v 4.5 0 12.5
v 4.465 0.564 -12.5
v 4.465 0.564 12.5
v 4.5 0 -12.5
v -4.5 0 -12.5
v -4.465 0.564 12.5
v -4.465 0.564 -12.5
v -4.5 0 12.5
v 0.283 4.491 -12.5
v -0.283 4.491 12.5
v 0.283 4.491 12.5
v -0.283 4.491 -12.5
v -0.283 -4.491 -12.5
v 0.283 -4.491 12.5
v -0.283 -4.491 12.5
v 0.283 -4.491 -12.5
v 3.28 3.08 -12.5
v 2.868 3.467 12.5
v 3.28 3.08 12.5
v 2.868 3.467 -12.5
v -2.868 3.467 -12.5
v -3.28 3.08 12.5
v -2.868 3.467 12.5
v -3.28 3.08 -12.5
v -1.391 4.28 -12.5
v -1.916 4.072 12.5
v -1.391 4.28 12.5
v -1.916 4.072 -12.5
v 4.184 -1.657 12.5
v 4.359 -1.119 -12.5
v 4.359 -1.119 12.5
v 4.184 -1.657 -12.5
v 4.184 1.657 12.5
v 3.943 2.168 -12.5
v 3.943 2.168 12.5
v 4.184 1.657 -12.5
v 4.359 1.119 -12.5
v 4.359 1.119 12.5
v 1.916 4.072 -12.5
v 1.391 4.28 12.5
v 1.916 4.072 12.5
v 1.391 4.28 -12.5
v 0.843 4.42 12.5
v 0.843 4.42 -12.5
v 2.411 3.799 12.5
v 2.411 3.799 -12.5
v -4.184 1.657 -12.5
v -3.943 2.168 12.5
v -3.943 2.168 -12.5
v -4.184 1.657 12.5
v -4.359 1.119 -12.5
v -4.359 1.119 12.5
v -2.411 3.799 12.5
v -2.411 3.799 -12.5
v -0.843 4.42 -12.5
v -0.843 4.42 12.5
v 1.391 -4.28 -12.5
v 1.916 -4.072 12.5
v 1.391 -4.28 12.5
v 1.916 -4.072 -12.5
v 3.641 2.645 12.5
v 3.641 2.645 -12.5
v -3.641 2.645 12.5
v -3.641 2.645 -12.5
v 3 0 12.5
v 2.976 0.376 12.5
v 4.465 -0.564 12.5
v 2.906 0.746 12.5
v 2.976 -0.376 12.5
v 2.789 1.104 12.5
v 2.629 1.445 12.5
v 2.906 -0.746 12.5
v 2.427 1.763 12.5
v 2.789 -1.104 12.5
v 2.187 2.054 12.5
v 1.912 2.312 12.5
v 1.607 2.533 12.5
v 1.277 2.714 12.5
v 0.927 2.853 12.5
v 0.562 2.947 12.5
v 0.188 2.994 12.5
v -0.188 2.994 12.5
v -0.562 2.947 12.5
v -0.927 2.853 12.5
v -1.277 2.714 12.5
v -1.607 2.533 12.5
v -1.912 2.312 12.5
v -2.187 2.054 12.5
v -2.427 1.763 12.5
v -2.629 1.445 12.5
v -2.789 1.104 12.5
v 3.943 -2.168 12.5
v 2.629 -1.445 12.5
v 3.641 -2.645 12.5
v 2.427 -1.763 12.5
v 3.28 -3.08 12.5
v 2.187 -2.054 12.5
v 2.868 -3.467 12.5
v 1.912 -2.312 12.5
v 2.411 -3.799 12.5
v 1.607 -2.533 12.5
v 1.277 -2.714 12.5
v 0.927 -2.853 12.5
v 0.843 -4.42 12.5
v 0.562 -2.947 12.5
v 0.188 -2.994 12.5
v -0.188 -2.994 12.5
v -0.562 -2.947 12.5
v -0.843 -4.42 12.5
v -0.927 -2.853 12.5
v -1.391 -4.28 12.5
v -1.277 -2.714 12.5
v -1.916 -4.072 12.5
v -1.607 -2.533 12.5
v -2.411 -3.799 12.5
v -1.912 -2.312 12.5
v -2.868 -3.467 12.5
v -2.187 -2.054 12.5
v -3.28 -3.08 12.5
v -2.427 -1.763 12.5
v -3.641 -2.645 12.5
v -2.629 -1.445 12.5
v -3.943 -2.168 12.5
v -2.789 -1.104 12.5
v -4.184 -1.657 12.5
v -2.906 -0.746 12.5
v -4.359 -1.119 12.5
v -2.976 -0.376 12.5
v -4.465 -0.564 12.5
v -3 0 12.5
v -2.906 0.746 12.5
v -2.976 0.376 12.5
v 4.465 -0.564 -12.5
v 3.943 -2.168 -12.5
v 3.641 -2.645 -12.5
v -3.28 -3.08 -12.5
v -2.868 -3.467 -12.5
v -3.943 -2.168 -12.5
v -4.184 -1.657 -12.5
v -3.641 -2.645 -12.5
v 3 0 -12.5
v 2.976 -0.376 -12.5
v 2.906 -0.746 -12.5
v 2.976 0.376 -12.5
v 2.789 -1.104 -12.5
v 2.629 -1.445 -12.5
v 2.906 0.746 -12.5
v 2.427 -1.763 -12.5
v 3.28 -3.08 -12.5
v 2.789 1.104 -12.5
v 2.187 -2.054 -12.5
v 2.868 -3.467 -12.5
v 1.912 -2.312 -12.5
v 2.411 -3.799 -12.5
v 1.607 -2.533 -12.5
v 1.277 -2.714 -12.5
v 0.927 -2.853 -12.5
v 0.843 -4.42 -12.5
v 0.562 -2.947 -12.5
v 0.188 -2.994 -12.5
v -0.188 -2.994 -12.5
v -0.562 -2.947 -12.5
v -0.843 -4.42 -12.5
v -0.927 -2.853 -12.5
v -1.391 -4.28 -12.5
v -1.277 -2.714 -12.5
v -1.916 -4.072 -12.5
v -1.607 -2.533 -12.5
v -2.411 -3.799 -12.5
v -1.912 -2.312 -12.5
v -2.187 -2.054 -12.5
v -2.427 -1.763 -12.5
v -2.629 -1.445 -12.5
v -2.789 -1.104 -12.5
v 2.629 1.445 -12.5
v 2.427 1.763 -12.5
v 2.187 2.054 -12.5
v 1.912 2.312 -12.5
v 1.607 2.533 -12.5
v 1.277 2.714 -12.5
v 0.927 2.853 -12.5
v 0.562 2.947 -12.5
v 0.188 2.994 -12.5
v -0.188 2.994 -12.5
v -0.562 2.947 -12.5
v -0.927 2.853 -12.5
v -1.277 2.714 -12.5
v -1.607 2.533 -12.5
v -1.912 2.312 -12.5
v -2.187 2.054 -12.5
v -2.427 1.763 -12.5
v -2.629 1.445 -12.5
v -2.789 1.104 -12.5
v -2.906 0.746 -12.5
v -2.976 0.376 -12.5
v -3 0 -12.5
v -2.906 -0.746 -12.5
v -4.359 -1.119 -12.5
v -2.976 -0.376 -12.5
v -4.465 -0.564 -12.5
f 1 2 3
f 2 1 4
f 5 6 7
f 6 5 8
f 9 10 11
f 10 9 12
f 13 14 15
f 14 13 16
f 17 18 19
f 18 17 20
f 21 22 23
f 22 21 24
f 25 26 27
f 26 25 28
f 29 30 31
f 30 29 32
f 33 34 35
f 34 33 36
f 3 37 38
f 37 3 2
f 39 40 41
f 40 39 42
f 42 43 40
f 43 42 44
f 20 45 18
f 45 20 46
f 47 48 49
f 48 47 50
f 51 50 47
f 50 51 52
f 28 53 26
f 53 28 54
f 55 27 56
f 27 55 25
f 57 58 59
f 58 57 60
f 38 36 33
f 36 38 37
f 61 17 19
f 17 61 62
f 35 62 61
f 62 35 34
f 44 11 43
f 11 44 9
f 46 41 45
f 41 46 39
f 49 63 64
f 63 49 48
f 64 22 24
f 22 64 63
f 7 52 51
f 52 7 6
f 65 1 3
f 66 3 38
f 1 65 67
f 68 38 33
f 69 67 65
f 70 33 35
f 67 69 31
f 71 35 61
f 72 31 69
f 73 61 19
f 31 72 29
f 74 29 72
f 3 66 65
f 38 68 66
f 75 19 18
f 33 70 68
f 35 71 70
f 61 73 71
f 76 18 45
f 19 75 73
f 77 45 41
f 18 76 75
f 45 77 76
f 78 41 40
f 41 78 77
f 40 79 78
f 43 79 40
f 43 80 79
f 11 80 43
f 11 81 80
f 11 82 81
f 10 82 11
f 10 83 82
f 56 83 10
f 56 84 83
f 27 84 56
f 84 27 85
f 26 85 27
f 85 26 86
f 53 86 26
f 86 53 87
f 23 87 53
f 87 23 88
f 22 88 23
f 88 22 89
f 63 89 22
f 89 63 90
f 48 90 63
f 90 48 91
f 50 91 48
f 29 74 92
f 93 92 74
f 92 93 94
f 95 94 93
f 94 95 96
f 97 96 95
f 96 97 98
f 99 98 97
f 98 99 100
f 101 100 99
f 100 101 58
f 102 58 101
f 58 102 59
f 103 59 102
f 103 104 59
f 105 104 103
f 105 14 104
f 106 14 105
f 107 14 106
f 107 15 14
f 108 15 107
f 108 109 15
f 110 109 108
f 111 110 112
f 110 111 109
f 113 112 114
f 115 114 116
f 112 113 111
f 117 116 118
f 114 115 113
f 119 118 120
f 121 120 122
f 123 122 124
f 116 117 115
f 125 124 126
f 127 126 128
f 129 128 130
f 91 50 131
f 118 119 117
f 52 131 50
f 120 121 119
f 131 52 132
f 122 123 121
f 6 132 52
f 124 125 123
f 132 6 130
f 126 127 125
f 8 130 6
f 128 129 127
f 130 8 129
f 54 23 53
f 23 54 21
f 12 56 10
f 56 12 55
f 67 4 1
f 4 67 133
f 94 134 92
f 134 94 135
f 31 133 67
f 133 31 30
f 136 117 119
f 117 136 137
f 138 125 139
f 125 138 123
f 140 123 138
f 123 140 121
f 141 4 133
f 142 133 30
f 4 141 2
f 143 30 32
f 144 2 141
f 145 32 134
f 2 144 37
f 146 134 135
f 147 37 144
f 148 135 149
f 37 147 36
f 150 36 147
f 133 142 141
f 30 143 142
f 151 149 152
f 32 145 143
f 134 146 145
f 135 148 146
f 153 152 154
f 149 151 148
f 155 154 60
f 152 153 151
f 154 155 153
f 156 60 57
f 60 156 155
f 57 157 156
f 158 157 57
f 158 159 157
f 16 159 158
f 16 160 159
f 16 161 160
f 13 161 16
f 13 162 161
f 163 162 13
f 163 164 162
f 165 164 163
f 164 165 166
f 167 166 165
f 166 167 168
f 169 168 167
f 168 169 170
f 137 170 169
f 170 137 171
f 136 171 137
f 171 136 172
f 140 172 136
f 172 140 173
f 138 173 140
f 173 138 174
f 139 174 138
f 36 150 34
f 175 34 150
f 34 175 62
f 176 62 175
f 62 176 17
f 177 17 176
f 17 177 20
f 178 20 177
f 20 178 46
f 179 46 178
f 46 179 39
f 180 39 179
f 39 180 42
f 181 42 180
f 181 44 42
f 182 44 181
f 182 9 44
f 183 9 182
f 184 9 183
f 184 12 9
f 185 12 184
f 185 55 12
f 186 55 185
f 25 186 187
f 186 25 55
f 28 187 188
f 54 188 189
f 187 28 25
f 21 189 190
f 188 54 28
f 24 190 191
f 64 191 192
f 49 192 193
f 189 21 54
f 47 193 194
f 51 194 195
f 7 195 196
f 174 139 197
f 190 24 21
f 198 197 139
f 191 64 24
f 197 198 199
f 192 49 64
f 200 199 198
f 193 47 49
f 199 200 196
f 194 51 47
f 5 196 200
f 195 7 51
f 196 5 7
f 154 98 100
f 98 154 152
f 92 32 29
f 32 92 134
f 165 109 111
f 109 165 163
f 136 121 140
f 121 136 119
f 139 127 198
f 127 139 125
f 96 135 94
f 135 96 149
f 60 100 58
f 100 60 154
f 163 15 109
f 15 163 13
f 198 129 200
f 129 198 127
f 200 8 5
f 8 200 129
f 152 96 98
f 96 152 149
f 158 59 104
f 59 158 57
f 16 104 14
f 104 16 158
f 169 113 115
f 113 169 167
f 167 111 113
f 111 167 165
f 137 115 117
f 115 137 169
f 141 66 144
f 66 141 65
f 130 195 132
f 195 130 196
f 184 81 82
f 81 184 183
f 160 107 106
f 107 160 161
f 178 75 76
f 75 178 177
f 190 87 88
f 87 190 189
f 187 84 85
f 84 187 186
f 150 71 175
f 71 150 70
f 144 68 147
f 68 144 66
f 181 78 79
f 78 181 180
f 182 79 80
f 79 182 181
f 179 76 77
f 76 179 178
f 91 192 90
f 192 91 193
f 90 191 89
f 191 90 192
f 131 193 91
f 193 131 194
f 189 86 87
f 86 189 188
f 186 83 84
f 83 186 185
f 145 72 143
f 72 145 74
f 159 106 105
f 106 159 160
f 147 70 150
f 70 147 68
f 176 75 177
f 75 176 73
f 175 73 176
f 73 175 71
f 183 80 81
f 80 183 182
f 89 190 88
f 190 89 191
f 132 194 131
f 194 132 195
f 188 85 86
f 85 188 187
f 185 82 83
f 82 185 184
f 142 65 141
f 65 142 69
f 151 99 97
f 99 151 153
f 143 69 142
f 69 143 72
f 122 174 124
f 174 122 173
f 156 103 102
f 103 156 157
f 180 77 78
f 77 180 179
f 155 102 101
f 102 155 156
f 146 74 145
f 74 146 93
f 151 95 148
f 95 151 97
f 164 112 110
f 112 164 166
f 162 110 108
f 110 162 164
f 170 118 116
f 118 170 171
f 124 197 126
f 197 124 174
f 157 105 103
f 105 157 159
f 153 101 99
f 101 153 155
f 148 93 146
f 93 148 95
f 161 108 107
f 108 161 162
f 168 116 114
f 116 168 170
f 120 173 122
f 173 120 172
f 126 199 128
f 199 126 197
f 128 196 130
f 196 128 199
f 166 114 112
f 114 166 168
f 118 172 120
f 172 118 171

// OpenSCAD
$fn = 50;


difference() {
	union() {
		translate(v = [0, 0, -12.5000000000]) {
			cylinder(h = 25, r = 4.5000000000);
		}
	}
	union() {
		translate(v = [0, 0, -100.0000000000]) {
			cylinder(h = 200, r = 3.0000000000);
		}
	}
}
